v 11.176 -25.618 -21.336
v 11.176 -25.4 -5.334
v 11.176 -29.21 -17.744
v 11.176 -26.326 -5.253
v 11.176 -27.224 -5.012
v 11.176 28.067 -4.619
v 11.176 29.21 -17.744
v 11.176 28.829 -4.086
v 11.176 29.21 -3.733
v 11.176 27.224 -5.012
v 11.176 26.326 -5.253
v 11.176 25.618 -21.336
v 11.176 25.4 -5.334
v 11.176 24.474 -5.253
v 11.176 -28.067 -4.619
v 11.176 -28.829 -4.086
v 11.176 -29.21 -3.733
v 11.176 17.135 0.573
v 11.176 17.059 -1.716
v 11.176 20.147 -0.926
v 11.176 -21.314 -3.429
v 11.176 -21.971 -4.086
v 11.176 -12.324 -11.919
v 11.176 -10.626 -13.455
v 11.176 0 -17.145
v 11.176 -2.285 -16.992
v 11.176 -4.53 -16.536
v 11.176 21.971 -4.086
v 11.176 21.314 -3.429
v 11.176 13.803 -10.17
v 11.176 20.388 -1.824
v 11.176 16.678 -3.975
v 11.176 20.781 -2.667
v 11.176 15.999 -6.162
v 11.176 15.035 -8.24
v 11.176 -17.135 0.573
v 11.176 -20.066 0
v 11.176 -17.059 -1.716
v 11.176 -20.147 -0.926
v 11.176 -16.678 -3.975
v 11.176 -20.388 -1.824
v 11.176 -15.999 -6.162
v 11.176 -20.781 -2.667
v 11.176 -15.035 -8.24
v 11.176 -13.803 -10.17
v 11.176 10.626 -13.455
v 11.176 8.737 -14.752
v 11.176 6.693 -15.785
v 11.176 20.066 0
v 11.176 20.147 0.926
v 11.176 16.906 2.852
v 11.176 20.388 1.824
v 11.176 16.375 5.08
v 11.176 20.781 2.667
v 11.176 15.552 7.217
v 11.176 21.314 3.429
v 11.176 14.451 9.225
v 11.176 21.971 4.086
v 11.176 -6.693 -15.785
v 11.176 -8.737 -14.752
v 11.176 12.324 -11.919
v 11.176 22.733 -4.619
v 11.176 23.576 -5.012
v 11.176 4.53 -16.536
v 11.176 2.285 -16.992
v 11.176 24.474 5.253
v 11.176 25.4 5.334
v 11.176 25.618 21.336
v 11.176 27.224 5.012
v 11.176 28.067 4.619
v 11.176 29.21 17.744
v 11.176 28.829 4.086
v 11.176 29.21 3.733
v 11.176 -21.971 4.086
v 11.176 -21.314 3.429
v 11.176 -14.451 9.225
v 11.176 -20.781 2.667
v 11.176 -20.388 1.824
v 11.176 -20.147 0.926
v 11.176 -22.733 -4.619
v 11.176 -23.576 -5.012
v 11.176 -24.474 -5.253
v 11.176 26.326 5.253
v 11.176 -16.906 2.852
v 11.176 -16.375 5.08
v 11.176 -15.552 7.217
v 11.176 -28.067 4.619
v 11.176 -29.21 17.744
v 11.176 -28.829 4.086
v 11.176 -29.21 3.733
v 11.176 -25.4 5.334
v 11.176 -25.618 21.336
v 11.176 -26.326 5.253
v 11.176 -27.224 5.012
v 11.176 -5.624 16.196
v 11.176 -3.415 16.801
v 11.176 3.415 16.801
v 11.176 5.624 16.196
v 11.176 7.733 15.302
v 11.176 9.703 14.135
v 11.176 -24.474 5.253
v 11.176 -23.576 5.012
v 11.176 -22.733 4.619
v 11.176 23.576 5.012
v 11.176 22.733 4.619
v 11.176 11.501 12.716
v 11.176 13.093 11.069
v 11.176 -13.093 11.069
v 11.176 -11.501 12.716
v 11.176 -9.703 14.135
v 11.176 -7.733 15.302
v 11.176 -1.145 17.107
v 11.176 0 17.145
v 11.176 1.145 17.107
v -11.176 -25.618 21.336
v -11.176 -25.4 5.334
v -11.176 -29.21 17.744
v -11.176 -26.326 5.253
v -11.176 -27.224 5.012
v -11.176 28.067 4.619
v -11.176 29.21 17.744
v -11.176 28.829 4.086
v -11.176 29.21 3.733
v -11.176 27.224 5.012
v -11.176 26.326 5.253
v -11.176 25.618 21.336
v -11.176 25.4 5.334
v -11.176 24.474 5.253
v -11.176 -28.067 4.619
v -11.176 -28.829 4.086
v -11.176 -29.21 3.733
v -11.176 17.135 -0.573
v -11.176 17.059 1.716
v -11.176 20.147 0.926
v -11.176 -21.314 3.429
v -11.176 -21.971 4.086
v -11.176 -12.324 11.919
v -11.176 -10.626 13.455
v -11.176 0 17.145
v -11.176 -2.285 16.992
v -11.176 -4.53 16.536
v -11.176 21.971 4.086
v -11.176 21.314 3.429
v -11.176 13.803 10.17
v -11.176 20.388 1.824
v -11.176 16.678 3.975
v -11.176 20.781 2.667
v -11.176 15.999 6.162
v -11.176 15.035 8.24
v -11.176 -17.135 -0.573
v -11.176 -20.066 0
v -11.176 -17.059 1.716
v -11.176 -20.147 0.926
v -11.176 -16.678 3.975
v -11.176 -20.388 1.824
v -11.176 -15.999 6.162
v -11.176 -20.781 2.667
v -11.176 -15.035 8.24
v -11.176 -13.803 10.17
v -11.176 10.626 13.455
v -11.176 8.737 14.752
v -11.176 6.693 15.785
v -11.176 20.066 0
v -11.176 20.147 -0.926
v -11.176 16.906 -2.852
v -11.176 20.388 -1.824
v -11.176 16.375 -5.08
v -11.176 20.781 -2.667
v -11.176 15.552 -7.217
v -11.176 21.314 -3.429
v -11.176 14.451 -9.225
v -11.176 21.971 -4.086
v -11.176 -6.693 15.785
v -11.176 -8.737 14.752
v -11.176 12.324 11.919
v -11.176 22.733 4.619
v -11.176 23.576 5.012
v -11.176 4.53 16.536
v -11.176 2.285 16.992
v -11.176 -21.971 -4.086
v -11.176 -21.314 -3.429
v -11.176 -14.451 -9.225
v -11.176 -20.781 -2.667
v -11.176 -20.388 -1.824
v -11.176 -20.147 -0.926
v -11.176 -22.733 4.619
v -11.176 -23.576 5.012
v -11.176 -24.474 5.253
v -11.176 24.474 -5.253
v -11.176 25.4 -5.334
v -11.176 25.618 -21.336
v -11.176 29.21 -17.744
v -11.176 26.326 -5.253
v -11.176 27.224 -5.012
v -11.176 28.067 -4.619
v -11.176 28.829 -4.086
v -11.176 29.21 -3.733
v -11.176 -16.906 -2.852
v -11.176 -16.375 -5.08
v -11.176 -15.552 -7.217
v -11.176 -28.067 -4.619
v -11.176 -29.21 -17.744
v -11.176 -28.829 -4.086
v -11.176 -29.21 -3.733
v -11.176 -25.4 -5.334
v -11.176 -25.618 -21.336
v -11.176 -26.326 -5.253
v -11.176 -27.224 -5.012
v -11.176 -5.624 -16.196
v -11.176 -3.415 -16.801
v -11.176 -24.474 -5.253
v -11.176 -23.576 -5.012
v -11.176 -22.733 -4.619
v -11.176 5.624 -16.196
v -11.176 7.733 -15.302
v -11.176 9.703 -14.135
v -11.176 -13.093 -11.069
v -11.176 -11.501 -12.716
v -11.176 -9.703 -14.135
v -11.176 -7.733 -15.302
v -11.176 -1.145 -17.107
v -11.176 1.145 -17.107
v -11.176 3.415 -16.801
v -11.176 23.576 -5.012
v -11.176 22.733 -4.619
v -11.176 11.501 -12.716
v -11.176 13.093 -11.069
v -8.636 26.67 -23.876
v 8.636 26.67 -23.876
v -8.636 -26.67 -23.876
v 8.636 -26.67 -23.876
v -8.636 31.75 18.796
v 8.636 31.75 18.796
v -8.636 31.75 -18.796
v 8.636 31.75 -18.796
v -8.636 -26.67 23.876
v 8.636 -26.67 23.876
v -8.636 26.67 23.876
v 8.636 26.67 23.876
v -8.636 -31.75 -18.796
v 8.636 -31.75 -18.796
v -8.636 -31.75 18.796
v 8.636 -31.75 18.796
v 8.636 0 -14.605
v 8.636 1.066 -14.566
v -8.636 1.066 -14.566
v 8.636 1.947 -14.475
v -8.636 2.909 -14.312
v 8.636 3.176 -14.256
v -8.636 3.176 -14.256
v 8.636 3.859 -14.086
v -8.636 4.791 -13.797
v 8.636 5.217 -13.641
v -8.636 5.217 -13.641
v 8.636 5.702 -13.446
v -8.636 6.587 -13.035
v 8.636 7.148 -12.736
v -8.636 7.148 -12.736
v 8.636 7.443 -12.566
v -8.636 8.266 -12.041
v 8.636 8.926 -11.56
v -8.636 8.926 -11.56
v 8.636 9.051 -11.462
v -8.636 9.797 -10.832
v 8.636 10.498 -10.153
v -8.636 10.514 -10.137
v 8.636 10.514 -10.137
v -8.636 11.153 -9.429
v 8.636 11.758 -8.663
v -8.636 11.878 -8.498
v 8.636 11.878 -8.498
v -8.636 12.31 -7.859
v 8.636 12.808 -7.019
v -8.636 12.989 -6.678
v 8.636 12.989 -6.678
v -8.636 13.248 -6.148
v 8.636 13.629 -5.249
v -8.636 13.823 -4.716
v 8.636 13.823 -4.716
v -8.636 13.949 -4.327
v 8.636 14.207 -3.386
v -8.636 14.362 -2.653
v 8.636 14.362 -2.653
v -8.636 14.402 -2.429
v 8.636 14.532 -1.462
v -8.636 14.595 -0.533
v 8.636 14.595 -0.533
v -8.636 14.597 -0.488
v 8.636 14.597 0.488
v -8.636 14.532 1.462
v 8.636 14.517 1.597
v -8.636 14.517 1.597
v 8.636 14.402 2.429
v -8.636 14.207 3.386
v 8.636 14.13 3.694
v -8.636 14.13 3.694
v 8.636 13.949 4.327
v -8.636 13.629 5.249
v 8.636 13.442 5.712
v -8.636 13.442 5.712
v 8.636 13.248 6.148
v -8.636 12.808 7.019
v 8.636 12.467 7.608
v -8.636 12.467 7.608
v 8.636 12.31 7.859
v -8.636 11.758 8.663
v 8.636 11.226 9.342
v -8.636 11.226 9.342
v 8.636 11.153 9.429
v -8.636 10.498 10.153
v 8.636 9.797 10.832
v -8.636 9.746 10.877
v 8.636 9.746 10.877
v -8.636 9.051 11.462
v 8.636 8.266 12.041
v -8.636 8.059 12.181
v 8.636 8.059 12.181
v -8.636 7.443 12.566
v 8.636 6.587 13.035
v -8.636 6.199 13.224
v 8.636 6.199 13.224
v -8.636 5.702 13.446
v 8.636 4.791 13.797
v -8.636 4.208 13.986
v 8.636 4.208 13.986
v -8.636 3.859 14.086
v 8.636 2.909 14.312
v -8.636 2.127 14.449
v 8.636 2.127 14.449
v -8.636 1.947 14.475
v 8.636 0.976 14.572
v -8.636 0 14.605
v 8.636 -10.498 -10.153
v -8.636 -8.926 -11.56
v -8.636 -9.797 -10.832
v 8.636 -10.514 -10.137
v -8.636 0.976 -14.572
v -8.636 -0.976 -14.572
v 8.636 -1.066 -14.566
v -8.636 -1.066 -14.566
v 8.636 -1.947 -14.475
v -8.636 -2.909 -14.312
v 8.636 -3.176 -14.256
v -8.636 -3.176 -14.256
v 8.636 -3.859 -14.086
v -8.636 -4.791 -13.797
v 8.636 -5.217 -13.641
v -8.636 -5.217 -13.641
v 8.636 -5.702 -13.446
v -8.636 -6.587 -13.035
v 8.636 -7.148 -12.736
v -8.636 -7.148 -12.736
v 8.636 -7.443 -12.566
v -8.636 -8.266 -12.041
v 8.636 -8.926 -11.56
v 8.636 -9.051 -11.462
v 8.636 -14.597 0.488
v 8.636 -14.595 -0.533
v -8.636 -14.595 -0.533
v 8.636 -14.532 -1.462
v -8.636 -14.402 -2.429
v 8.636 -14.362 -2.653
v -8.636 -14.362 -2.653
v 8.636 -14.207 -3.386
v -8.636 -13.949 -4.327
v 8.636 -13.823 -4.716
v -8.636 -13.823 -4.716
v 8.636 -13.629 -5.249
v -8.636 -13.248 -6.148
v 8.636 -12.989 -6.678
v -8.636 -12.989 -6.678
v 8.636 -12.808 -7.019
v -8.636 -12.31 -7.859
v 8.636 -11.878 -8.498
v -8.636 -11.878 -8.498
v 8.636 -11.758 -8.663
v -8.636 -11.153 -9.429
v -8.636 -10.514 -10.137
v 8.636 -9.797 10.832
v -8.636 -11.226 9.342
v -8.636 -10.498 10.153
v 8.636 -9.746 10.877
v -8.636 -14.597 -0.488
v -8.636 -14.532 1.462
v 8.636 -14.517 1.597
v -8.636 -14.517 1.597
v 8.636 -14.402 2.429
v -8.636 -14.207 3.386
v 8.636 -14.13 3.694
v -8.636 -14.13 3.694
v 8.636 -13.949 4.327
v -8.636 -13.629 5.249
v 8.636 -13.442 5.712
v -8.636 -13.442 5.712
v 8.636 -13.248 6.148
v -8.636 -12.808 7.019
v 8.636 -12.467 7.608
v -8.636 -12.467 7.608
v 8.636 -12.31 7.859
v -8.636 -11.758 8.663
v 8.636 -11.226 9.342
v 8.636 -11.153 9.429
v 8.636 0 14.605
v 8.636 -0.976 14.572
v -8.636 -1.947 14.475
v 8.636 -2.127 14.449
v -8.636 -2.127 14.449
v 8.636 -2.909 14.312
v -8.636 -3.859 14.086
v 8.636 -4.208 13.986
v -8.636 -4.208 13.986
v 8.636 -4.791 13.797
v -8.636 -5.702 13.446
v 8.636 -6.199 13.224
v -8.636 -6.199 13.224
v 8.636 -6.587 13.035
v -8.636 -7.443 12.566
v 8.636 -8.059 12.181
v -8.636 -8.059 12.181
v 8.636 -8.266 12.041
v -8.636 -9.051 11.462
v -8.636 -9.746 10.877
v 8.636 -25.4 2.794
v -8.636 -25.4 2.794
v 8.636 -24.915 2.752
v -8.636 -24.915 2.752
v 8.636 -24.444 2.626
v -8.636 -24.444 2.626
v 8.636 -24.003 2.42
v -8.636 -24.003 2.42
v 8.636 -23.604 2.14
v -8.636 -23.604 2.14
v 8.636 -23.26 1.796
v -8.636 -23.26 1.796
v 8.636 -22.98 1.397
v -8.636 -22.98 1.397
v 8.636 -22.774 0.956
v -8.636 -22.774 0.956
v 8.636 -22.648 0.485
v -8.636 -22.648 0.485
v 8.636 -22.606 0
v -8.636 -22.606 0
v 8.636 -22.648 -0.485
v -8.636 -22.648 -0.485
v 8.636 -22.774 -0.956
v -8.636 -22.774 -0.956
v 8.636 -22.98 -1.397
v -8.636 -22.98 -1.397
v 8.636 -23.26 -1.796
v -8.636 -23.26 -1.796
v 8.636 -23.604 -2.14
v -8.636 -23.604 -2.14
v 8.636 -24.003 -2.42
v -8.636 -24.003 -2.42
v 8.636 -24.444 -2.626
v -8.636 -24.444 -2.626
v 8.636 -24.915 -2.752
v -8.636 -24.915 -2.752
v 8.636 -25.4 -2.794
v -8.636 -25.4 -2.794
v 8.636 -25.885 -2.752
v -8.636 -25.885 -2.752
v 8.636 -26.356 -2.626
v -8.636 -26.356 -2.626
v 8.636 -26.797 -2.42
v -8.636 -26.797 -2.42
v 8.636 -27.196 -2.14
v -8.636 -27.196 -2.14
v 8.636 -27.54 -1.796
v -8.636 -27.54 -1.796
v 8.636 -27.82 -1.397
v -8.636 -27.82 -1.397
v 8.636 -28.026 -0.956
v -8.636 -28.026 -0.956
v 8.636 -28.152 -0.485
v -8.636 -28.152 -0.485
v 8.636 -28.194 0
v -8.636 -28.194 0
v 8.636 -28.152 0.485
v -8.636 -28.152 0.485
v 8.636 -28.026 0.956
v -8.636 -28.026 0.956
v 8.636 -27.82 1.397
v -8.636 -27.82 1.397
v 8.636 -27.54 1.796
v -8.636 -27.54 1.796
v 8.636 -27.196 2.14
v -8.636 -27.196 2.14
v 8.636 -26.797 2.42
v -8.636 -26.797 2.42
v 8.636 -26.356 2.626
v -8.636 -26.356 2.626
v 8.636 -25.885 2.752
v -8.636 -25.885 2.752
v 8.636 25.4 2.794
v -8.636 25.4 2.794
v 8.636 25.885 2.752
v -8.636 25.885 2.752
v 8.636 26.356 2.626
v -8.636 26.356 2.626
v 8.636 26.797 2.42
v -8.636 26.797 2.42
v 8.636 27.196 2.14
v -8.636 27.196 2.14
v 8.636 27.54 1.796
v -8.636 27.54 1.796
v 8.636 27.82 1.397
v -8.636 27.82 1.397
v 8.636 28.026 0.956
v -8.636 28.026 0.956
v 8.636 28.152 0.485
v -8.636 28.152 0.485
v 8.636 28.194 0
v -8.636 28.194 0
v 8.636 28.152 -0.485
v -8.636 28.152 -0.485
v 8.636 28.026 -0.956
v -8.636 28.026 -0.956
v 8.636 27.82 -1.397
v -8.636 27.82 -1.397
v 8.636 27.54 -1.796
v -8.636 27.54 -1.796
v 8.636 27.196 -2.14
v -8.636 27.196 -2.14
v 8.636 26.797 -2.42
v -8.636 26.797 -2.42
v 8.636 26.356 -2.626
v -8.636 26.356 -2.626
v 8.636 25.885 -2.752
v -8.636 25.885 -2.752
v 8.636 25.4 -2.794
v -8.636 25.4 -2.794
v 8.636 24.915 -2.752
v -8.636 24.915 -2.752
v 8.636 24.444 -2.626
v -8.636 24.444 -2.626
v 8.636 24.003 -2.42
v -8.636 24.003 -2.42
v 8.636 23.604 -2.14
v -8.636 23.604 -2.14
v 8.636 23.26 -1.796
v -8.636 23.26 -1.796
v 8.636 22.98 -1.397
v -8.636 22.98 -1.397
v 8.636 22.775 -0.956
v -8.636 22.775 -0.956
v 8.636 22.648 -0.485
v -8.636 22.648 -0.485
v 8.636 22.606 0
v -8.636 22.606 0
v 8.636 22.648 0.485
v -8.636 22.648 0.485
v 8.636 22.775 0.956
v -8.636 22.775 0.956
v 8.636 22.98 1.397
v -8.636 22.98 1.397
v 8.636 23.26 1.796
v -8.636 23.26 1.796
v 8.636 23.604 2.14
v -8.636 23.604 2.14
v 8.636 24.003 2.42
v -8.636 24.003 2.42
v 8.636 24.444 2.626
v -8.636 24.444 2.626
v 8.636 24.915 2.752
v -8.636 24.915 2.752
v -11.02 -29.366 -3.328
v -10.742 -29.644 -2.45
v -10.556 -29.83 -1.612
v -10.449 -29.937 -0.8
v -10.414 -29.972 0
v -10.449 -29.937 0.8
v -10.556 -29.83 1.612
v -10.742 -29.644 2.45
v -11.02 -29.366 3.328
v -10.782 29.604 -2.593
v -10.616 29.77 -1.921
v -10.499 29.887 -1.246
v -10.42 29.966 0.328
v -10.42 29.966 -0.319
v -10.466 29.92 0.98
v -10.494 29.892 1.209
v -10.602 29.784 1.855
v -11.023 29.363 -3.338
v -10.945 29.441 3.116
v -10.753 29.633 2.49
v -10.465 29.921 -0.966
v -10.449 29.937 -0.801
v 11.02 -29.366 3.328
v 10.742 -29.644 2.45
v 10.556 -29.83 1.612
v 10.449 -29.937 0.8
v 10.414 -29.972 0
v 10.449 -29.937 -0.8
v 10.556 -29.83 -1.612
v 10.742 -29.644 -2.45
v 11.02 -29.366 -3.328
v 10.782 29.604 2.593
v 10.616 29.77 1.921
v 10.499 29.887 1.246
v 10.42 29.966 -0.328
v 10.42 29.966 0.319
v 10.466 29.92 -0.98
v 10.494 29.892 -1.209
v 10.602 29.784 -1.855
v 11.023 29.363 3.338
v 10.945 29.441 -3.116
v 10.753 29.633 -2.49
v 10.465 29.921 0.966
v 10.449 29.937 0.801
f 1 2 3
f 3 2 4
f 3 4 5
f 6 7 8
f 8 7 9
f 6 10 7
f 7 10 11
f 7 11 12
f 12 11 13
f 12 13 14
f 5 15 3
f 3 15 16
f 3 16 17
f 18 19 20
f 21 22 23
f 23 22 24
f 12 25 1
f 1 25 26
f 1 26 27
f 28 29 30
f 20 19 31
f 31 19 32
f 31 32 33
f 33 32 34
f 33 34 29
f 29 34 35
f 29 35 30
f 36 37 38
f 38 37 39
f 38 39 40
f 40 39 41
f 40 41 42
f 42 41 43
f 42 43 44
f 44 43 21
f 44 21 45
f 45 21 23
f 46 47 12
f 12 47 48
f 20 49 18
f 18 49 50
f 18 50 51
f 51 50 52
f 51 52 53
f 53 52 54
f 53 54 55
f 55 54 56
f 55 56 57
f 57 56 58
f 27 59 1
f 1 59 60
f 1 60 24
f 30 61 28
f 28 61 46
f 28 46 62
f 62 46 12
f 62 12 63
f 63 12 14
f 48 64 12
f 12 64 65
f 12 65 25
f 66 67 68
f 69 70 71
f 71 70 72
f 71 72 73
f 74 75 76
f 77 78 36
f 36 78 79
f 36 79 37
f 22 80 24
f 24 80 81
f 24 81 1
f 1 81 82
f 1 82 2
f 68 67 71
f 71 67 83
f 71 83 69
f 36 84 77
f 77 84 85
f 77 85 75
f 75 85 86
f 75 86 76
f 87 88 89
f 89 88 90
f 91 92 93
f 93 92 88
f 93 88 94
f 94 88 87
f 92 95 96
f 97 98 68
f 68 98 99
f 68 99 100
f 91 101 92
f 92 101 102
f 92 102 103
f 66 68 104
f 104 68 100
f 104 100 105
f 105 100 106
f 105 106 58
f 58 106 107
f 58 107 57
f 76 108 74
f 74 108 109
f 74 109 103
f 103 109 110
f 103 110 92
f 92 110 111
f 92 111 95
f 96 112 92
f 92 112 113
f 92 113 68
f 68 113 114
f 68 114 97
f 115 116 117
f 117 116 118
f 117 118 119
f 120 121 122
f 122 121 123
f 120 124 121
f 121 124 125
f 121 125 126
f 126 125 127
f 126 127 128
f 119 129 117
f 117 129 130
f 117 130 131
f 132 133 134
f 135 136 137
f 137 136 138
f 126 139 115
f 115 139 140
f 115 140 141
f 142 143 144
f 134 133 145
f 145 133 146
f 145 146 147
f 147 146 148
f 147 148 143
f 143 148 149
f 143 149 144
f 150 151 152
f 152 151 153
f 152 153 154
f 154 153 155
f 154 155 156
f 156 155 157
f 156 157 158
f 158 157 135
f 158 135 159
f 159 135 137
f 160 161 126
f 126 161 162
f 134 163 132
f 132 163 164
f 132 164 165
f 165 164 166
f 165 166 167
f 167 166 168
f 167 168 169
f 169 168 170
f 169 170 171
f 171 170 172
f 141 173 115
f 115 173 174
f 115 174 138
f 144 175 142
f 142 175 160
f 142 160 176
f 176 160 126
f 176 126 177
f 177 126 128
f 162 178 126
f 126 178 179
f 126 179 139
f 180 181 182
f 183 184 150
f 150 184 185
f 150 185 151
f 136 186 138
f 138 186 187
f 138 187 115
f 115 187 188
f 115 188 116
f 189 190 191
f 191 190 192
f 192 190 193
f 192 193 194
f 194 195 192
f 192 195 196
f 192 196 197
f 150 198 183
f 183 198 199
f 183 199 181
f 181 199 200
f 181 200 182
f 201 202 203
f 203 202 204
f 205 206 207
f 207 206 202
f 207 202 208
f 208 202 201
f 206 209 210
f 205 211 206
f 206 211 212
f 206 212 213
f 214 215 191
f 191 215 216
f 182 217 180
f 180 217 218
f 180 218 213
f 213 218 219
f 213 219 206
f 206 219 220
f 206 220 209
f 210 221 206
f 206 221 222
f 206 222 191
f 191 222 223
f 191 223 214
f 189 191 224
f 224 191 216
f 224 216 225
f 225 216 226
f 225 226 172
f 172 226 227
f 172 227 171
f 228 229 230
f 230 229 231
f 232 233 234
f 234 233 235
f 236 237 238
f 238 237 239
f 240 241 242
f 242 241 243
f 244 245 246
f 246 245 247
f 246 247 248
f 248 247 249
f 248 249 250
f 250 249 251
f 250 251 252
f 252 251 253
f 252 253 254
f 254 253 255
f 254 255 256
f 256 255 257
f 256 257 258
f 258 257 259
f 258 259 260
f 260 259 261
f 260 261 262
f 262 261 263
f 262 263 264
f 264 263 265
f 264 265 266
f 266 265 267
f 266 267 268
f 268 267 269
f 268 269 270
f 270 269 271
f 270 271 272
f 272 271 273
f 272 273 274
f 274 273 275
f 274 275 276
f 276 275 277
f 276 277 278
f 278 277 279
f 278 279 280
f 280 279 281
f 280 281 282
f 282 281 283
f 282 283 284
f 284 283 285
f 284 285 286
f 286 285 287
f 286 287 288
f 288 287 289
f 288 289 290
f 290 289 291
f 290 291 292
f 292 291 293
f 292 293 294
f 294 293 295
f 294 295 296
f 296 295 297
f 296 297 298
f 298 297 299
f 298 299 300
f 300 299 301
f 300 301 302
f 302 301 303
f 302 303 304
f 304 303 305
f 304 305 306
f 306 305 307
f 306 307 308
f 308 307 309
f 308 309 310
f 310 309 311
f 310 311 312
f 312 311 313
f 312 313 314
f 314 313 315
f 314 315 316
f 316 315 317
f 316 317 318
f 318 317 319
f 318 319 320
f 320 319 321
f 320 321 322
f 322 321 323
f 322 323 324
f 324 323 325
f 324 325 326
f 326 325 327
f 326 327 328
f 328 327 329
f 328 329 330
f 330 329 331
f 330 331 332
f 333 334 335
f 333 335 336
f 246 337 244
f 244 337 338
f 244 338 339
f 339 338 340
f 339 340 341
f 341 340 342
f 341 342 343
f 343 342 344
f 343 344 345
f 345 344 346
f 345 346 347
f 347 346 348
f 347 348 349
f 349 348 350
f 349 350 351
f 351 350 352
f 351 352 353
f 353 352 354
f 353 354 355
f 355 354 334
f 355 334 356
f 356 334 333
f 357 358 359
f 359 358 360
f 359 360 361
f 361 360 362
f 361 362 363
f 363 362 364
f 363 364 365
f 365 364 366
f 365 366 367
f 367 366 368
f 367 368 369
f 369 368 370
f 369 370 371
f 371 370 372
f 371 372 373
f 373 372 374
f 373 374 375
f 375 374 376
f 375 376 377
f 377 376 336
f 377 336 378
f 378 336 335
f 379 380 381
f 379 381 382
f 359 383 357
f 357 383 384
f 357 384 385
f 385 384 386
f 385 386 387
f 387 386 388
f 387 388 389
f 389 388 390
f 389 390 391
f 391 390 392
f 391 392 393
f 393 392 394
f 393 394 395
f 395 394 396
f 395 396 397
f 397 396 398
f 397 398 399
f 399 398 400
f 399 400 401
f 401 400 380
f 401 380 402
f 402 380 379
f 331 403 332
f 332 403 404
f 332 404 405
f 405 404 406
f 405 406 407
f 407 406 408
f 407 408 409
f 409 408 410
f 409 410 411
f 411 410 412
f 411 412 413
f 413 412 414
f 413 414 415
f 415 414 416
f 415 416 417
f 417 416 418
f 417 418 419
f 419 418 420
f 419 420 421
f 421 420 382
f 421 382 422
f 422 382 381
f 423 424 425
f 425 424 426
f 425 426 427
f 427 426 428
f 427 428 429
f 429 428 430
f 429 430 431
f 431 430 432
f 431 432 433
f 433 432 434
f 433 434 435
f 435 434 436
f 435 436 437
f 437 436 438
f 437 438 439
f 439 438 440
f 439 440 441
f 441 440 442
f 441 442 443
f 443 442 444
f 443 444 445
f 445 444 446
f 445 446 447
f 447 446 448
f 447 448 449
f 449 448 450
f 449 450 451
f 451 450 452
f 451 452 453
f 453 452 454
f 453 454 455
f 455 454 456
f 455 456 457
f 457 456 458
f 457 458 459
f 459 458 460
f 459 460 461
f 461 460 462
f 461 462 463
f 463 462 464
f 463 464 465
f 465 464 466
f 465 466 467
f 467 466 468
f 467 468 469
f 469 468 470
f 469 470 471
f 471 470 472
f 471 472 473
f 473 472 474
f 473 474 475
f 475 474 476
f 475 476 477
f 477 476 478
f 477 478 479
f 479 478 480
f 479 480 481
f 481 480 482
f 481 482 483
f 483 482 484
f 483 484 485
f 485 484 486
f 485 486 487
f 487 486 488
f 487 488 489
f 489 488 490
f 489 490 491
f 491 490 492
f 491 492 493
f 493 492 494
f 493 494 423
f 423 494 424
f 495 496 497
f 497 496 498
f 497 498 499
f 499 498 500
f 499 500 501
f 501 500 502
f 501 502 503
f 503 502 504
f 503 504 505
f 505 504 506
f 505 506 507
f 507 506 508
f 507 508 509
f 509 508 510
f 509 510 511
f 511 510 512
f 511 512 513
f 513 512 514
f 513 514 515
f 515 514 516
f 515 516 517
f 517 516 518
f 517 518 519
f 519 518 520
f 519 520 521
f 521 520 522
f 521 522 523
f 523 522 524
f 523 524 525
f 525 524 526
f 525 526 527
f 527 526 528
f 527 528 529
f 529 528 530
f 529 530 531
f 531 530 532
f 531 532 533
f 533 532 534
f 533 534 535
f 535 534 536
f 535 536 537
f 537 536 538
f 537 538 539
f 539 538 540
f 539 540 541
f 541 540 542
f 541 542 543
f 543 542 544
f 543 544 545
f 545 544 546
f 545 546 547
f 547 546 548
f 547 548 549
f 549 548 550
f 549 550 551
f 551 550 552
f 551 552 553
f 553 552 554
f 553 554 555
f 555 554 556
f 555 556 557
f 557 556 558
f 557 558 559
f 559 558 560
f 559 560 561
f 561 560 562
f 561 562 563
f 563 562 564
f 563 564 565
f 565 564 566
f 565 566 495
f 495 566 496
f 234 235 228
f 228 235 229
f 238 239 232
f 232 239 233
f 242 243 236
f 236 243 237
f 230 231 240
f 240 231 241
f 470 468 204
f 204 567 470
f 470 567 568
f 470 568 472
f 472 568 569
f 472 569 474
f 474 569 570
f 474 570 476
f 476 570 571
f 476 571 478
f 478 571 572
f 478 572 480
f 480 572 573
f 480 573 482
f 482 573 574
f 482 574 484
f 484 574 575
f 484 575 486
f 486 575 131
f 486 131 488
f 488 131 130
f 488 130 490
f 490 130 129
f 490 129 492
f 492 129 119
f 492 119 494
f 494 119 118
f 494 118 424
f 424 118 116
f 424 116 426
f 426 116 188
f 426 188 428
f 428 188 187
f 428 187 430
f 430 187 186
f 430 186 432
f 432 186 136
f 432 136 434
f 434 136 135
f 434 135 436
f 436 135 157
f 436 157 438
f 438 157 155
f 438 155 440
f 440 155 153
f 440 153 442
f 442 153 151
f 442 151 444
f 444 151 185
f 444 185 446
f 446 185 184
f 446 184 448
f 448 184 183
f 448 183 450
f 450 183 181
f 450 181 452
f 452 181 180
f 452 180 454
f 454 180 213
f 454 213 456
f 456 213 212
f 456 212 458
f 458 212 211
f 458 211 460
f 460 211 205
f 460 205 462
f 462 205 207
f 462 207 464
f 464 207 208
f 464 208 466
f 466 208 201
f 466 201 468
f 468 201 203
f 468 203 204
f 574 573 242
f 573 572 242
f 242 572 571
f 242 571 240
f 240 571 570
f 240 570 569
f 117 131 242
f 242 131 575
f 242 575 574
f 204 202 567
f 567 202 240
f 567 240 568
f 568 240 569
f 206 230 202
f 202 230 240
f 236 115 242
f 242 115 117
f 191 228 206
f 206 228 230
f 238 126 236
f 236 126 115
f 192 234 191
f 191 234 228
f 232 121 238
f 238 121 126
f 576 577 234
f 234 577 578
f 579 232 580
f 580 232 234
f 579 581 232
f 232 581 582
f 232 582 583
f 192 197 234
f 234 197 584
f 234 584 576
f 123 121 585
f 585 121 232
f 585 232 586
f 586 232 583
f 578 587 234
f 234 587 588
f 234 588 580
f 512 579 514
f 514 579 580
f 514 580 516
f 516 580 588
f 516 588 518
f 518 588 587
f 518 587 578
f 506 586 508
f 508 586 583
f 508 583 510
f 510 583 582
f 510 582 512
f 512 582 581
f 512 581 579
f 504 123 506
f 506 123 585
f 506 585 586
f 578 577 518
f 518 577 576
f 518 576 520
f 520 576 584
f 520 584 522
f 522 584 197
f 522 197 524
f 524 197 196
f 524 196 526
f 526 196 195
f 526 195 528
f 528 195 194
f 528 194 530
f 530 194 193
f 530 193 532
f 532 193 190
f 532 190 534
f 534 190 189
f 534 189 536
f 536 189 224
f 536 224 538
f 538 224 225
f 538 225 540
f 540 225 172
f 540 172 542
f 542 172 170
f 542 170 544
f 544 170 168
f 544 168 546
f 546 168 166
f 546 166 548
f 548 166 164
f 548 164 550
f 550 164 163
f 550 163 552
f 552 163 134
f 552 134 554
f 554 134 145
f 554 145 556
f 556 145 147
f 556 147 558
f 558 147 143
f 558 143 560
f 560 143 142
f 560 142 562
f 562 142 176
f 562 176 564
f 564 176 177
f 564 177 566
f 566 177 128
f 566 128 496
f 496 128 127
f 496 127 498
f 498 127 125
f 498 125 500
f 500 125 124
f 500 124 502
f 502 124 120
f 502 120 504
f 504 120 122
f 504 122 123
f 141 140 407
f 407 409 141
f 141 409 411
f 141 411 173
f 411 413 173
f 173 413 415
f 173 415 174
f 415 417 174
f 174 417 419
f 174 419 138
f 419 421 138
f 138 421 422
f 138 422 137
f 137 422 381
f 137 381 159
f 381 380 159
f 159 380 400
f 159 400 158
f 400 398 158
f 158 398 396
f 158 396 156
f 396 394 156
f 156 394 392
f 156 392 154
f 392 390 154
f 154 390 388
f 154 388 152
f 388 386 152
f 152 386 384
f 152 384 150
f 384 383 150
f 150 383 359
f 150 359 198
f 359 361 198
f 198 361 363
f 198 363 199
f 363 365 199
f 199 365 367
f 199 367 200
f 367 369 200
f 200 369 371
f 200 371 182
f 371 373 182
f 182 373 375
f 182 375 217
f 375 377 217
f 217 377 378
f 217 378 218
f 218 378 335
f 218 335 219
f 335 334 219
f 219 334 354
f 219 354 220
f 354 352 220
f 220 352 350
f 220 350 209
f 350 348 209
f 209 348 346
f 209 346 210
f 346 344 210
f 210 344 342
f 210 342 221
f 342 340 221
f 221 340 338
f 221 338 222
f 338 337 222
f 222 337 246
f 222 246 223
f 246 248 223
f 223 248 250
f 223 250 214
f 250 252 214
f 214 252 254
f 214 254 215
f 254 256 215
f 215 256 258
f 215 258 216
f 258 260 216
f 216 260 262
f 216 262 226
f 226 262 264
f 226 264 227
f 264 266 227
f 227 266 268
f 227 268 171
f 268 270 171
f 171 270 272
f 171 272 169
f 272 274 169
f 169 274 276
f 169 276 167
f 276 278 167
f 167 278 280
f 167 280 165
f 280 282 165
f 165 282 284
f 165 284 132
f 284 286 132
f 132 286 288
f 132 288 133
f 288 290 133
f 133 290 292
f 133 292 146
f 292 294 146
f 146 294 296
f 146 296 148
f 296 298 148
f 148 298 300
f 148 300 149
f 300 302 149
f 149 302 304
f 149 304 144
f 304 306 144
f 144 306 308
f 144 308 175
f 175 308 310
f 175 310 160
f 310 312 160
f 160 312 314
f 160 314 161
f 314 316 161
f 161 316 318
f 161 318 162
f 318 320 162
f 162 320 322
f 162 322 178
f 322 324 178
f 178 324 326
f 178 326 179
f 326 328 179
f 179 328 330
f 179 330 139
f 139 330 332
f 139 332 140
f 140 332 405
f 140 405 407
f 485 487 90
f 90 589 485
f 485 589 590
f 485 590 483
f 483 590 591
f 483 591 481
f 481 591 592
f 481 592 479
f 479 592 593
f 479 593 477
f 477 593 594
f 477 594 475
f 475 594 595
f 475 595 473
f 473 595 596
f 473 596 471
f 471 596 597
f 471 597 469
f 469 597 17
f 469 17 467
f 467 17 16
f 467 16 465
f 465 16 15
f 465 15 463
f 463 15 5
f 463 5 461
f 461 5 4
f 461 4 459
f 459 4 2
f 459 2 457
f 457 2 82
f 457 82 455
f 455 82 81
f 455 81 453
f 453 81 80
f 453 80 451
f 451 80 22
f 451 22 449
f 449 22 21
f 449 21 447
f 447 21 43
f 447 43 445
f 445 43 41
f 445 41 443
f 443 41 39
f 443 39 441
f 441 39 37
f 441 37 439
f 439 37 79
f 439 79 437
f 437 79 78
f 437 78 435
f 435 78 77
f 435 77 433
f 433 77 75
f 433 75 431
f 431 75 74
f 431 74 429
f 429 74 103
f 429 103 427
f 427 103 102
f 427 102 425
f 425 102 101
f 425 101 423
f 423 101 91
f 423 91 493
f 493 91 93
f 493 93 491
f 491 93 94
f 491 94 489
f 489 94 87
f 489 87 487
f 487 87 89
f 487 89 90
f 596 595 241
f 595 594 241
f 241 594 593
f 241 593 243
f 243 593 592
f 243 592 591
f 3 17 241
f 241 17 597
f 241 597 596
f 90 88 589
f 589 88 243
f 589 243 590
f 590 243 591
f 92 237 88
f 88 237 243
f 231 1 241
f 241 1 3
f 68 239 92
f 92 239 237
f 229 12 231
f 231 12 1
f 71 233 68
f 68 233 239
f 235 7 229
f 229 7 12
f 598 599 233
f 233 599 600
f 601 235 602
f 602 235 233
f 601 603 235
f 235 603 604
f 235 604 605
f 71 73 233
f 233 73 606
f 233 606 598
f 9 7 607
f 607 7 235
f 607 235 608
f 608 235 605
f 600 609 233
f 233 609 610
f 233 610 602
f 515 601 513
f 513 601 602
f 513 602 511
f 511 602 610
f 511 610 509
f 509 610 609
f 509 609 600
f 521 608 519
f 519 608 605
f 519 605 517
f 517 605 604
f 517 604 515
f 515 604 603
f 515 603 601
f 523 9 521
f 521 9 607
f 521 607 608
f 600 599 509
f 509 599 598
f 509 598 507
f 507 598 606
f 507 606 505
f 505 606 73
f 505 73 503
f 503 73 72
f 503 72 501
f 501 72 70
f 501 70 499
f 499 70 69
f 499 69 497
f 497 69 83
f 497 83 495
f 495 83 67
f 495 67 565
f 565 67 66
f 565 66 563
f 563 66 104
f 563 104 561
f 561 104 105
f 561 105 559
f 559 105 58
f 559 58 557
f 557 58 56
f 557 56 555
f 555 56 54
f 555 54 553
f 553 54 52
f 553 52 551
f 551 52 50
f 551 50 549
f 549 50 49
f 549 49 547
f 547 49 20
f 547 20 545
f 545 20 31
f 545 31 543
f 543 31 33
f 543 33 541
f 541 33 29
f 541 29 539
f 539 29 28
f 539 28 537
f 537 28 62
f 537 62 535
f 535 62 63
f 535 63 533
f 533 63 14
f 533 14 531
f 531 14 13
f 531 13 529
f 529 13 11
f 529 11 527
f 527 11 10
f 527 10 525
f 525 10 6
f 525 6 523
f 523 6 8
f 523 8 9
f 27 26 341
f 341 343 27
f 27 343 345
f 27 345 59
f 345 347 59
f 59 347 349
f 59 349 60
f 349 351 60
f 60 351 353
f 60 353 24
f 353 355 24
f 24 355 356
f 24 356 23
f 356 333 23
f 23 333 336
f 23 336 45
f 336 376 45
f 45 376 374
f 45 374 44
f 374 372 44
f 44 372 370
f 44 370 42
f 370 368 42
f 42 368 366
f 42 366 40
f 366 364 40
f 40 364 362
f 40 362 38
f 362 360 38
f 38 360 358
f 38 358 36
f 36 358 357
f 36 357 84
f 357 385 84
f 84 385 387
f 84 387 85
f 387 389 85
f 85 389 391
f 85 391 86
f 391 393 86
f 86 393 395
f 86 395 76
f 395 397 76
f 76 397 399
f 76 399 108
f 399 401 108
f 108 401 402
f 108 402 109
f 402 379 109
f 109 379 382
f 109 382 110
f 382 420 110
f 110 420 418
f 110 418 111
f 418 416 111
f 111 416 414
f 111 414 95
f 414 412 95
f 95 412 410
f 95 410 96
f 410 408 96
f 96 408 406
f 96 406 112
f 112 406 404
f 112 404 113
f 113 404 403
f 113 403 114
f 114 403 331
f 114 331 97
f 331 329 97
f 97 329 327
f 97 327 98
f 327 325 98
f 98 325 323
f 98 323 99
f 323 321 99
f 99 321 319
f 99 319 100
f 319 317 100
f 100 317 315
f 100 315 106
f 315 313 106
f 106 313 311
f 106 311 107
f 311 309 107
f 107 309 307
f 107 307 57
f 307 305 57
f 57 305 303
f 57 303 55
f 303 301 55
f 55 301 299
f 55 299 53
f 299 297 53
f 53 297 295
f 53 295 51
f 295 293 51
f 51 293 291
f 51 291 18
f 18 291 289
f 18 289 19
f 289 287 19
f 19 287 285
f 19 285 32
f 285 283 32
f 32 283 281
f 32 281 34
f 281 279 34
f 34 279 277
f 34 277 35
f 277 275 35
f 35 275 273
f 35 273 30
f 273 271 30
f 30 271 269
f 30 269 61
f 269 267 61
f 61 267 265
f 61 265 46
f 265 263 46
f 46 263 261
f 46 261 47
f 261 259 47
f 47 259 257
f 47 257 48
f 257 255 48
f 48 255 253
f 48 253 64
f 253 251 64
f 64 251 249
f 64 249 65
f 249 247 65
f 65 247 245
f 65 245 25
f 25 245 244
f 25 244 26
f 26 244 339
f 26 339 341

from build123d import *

# Parameters (mm, degrees)
SKETCH1_W           = 47.752
SKETCH1_H           = 63.5
SKETCH1_R           = 14.605
SKETCH1_R_2         = 2.794
BOSS_EXTRUDE1_DEPTH = 11.176
FILLET1_SIZE        = 5.08
CHAMFER1_SIZE       = 2.54


with BuildPart() as part:
    # Sketch1 → Boss-Extrude1 (new, symmetric)
    with BuildSketch(Plane(origin=(0, 0, 0), x_dir=(0, 0, -1), z_dir=(1, 0, 0))):
        Rectangle(SKETCH1_W, SKETCH1_H)
        Circle(SKETCH1_R, mode=Mode.SUBTRACT)
        with Locations((0, -25.4)):
            Circle(SKETCH1_R_2, mode=Mode.SUBTRACT)
        with Locations((0, 25.4)):
            Circle(SKETCH1_R_2, mode=Mode.SUBTRACT)
    extrude(amount=BOSS_EXTRUDE1_DEPTH, both=True)

    # Fillet1
    fillet1_edges = [part.edges().sort_by_distance(p)[0] for p in [
        (0, -31.75, -23.876),
        (0, -31.75, 23.876),
        (0, 31.75, 23.876),
        (0, 31.75, -23.876),
    ]]
    chamfer(fillet1_edges, length=FILLET1_SIZE)

    # Chamfer1
    # the kernel refuses this chamfer: 2.54 mm, written as the material it takes off along each edge
    with BuildSketch(Plane(origin=(-11.176, 0, 0), x_dir=(0, 0, -1), z_dir=(0, -1, 0))) as chamfer1_piece_1:
        Polygon((14.605 + CHAMFER1_SIZE, 0), (14.605, CHAMFER1_SIZE), (14.605, 0), align=None)
    revolve(axis=Axis((-11.176, 0, 0), (1, 0, 0)), mode=Mode.SUBTRACT)
    with BuildSketch(Plane(origin=(11.176, 0, 0), x_dir=(0, 0, -1), z_dir=(0, -1, 0))) as chamfer1_piece_2:
        Polygon((14.605 + CHAMFER1_SIZE, 0), (14.605, -CHAMFER1_SIZE), (14.605, 0), align=None)
    revolve(axis=Axis((11.176, 0, 0), (1, 0, 0)), mode=Mode.SUBTRACT)
    with BuildSketch(Plane(origin=(-11.176, -25.4, 0), x_dir=(0, 0, -1), z_dir=(0, -1, 0))) as chamfer1_piece_3:
        Polygon((2.794 + CHAMFER1_SIZE, 0), (2.794, CHAMFER1_SIZE), (2.794, 0), align=None)
    revolve(axis=Axis((-11.176, -25.4, 0), (1, 0, 0)), mode=Mode.SUBTRACT)
    with BuildSketch(Plane(origin=(11.176, -25.4, 0), x_dir=(0, 0, -1), z_dir=(0, -1, 0))) as chamfer1_piece_4:
        Polygon((2.794 + CHAMFER1_SIZE, 0), (2.794, -CHAMFER1_SIZE), (2.794, 0), align=None)
    revolve(axis=Axis((11.176, -25.4, 0), (1, 0, 0)), mode=Mode.SUBTRACT)
    with BuildSketch(Plane(origin=(-11.176, 25.4, 0), x_dir=(0, 0, -1), z_dir=(0, -1, 0))) as chamfer1_piece_5:
        Polygon((2.794 + CHAMFER1_SIZE, 0), (2.794, CHAMFER1_SIZE), (2.794, 0), align=None)
    revolve(axis=Axis((-11.176, 25.4, 0), (1, 0, 0)), mode=Mode.SUBTRACT)
    with BuildSketch(Plane(origin=(11.176, 25.4, 0), x_dir=(0, 0, -1), z_dir=(0, -1, 0))) as chamfer1_piece_6:
        Polygon((2.794 + CHAMFER1_SIZE, 0), (2.794, -CHAMFER1_SIZE), (2.794, 0), align=None)
    revolve(axis=Axis((11.176, 25.4, 0), (1, 0, 0)), mode=Mode.SUBTRACT)
    with BuildSketch(Plane(origin=(-11.176, 31.75, -25.328074789), x_dir=(-0.02749587661058663, -0.9996219169112968, 0), z_dir=(0, 0, 1)), Plane(origin=(11.176, -31.75, 25.328074789), x_dir=(-0.9996219169112968, -0.02749587661058591, 0), z_dir=(0, 0, -1))) as chamfer1_piece_7:
        Polygon((CHAMFER1_SIZE * 0.999621916911, CHAMFER1_SIZE * 0.0274958766106), (-CHAMFER1_SIZE * 0.0274958766106, CHAMFER1_SIZE * 0.999621916911), (0, 0), align=None)
    extrude(amount=50.656149579, mode=Mode.SUBTRACT)
    with BuildSketch(Plane(origin=(11.176, 31.75, -25.328074789), x_dir=(0.02749587661058663, -0.9996219169112968, 0), z_dir=(0, 0, 1)), Plane(origin=(-11.176, -31.75, 25.328074789), x_dir=(0.9996219169112968, -0.02749587661058591, 0), z_dir=(0, 0, -1))) as chamfer1_piece_8:
        Polygon((CHAMFER1_SIZE * 0.999621916911, -CHAMFER1_SIZE * 0.0274958766106), (-CHAMFER1_SIZE * 0.0274958766106, -CHAMFER1_SIZE * 0.999621916911), (0, 0), align=None)
    extrude(amount=50.656149579, mode=Mode.SUBTRACT)
    with BuildSketch(Plane(origin=(-11.176, -33.202074789, -23.876), x_dir=(-0.02749587661058663, 0, 0.9996219169112968), z_dir=(0, 1, 0)), Plane(origin=(-11.176, 33.202074789, 23.876), x_dir=(-0.02749587661058663, 0, -0.9996219169112968), z_dir=(0, -1, 0))) as chamfer1_piece_9:
        Polygon((CHAMFER1_SIZE * 0.999621916911, CHAMFER1_SIZE * 0.0274958766106), (-CHAMFER1_SIZE * 0.0274958766106, CHAMFER1_SIZE * 0.999621916911), (0, 0), align=None)
    extrude(amount=66.404149579, mode=Mode.SUBTRACT)
    with BuildSketch(Plane(origin=(-11.176, -36.368874379, -14.177125621), x_dir=(-0.027495876610586566, 0.7068394360706737, 0.7068394360706733), z_dir=(0, 0.7071067811865474, -0.7071067811865477)), Plane(origin=(11.176, -36.368874379, -14.177125621), x_dir=(-0.9996219169112966, -0.019442520806015103, -0.019442520806015093), z_dir=(0, 0.7071067811865474, -0.7071067811865477)), Plane(origin=(11.176, 22.051125621, 28.494874379), x_dir=(0.027495876610586632, -0.7068394360706737, -0.7068394360706733), z_dir=(0, 0.7071067811865474, -0.7071067811865477)), Plane(origin=(11.176, 36.368874379, -14.177125621), x_dir=(0.027495876610586566, -0.7068394360706737, 0.7068394360706733), z_dir=(0, -0.7071067811865474, -0.7071067811865477))) as chamfer1_piece_10:
        Polygon((CHAMFER1_SIZE * 0.999621916911, CHAMFER1_SIZE * 0.0274958766106), (-CHAMFER1_SIZE * 0.0274958766106, CHAMFER1_SIZE * 0.999621916911), (0, 0), align=None)
    extrude(amount=20.248354476, mode=Mode.SUBTRACT)
    with BuildSketch(Plane(origin=(-11.176, -36.368874379, 14.177125621), x_dir=(-0.027495876610586566, 0.7068394360706737, -0.7068394360706733), z_dir=(0, 0.7071067811865474, 0.7071067811865477)), Plane(origin=(-11.176, 22.051125621, 28.494874379), x_dir=(-0.027495876610586632, -0.7068394360706737, -0.7068394360706733), z_dir=(0, 0.7071067811865474, -0.7071067811865477)), Plane(origin=(-11.176, 36.368874379, -14.177125621), x_dir=(-0.027495876610586566, -0.7068394360706737, 0.7068394360706733), z_dir=(0, -0.7071067811865474, -0.7071067811865477)), Plane(origin=(11.176, -36.368874379, 14.177125621), x_dir=(-0.9996219169112966, -0.019442520806015457, 0.019442520806015447), z_dir=(0, 0.7071067811865474, 0.7071067811865477))) as chamfer1_piece_11:
        Polygon((CHAMFER1_SIZE * 0.999621916911, -CHAMFER1_SIZE * 0.0274958766106), (-CHAMFER1_SIZE * 0.0274958766106, -CHAMFER1_SIZE * 0.999621916911), (0, 0), align=None)
    extrude(amount=20.248354476, mode=Mode.SUBTRACT)
    with BuildSketch(Plane(origin=(11.176, -33.202074789, -23.876), x_dir=(0.02749587661058663, 0, 0.9996219169112968), z_dir=(0, 1, 0)), Plane(origin=(11.176, 33.202074789, 23.876), x_dir=(0.02749587661058663, 0, -0.9996219169112968), z_dir=(0, -1, 0))) as chamfer1_piece_12:
        Polygon((CHAMFER1_SIZE * 0.999621916911, -CHAMFER1_SIZE * 0.0274958766106), (-CHAMFER1_SIZE * 0.0274958766106, -CHAMFER1_SIZE * 0.999621916911), (0, 0), align=None)
    extrude(amount=66.404149579, mode=Mode.SUBTRACT)


solid = part.part
